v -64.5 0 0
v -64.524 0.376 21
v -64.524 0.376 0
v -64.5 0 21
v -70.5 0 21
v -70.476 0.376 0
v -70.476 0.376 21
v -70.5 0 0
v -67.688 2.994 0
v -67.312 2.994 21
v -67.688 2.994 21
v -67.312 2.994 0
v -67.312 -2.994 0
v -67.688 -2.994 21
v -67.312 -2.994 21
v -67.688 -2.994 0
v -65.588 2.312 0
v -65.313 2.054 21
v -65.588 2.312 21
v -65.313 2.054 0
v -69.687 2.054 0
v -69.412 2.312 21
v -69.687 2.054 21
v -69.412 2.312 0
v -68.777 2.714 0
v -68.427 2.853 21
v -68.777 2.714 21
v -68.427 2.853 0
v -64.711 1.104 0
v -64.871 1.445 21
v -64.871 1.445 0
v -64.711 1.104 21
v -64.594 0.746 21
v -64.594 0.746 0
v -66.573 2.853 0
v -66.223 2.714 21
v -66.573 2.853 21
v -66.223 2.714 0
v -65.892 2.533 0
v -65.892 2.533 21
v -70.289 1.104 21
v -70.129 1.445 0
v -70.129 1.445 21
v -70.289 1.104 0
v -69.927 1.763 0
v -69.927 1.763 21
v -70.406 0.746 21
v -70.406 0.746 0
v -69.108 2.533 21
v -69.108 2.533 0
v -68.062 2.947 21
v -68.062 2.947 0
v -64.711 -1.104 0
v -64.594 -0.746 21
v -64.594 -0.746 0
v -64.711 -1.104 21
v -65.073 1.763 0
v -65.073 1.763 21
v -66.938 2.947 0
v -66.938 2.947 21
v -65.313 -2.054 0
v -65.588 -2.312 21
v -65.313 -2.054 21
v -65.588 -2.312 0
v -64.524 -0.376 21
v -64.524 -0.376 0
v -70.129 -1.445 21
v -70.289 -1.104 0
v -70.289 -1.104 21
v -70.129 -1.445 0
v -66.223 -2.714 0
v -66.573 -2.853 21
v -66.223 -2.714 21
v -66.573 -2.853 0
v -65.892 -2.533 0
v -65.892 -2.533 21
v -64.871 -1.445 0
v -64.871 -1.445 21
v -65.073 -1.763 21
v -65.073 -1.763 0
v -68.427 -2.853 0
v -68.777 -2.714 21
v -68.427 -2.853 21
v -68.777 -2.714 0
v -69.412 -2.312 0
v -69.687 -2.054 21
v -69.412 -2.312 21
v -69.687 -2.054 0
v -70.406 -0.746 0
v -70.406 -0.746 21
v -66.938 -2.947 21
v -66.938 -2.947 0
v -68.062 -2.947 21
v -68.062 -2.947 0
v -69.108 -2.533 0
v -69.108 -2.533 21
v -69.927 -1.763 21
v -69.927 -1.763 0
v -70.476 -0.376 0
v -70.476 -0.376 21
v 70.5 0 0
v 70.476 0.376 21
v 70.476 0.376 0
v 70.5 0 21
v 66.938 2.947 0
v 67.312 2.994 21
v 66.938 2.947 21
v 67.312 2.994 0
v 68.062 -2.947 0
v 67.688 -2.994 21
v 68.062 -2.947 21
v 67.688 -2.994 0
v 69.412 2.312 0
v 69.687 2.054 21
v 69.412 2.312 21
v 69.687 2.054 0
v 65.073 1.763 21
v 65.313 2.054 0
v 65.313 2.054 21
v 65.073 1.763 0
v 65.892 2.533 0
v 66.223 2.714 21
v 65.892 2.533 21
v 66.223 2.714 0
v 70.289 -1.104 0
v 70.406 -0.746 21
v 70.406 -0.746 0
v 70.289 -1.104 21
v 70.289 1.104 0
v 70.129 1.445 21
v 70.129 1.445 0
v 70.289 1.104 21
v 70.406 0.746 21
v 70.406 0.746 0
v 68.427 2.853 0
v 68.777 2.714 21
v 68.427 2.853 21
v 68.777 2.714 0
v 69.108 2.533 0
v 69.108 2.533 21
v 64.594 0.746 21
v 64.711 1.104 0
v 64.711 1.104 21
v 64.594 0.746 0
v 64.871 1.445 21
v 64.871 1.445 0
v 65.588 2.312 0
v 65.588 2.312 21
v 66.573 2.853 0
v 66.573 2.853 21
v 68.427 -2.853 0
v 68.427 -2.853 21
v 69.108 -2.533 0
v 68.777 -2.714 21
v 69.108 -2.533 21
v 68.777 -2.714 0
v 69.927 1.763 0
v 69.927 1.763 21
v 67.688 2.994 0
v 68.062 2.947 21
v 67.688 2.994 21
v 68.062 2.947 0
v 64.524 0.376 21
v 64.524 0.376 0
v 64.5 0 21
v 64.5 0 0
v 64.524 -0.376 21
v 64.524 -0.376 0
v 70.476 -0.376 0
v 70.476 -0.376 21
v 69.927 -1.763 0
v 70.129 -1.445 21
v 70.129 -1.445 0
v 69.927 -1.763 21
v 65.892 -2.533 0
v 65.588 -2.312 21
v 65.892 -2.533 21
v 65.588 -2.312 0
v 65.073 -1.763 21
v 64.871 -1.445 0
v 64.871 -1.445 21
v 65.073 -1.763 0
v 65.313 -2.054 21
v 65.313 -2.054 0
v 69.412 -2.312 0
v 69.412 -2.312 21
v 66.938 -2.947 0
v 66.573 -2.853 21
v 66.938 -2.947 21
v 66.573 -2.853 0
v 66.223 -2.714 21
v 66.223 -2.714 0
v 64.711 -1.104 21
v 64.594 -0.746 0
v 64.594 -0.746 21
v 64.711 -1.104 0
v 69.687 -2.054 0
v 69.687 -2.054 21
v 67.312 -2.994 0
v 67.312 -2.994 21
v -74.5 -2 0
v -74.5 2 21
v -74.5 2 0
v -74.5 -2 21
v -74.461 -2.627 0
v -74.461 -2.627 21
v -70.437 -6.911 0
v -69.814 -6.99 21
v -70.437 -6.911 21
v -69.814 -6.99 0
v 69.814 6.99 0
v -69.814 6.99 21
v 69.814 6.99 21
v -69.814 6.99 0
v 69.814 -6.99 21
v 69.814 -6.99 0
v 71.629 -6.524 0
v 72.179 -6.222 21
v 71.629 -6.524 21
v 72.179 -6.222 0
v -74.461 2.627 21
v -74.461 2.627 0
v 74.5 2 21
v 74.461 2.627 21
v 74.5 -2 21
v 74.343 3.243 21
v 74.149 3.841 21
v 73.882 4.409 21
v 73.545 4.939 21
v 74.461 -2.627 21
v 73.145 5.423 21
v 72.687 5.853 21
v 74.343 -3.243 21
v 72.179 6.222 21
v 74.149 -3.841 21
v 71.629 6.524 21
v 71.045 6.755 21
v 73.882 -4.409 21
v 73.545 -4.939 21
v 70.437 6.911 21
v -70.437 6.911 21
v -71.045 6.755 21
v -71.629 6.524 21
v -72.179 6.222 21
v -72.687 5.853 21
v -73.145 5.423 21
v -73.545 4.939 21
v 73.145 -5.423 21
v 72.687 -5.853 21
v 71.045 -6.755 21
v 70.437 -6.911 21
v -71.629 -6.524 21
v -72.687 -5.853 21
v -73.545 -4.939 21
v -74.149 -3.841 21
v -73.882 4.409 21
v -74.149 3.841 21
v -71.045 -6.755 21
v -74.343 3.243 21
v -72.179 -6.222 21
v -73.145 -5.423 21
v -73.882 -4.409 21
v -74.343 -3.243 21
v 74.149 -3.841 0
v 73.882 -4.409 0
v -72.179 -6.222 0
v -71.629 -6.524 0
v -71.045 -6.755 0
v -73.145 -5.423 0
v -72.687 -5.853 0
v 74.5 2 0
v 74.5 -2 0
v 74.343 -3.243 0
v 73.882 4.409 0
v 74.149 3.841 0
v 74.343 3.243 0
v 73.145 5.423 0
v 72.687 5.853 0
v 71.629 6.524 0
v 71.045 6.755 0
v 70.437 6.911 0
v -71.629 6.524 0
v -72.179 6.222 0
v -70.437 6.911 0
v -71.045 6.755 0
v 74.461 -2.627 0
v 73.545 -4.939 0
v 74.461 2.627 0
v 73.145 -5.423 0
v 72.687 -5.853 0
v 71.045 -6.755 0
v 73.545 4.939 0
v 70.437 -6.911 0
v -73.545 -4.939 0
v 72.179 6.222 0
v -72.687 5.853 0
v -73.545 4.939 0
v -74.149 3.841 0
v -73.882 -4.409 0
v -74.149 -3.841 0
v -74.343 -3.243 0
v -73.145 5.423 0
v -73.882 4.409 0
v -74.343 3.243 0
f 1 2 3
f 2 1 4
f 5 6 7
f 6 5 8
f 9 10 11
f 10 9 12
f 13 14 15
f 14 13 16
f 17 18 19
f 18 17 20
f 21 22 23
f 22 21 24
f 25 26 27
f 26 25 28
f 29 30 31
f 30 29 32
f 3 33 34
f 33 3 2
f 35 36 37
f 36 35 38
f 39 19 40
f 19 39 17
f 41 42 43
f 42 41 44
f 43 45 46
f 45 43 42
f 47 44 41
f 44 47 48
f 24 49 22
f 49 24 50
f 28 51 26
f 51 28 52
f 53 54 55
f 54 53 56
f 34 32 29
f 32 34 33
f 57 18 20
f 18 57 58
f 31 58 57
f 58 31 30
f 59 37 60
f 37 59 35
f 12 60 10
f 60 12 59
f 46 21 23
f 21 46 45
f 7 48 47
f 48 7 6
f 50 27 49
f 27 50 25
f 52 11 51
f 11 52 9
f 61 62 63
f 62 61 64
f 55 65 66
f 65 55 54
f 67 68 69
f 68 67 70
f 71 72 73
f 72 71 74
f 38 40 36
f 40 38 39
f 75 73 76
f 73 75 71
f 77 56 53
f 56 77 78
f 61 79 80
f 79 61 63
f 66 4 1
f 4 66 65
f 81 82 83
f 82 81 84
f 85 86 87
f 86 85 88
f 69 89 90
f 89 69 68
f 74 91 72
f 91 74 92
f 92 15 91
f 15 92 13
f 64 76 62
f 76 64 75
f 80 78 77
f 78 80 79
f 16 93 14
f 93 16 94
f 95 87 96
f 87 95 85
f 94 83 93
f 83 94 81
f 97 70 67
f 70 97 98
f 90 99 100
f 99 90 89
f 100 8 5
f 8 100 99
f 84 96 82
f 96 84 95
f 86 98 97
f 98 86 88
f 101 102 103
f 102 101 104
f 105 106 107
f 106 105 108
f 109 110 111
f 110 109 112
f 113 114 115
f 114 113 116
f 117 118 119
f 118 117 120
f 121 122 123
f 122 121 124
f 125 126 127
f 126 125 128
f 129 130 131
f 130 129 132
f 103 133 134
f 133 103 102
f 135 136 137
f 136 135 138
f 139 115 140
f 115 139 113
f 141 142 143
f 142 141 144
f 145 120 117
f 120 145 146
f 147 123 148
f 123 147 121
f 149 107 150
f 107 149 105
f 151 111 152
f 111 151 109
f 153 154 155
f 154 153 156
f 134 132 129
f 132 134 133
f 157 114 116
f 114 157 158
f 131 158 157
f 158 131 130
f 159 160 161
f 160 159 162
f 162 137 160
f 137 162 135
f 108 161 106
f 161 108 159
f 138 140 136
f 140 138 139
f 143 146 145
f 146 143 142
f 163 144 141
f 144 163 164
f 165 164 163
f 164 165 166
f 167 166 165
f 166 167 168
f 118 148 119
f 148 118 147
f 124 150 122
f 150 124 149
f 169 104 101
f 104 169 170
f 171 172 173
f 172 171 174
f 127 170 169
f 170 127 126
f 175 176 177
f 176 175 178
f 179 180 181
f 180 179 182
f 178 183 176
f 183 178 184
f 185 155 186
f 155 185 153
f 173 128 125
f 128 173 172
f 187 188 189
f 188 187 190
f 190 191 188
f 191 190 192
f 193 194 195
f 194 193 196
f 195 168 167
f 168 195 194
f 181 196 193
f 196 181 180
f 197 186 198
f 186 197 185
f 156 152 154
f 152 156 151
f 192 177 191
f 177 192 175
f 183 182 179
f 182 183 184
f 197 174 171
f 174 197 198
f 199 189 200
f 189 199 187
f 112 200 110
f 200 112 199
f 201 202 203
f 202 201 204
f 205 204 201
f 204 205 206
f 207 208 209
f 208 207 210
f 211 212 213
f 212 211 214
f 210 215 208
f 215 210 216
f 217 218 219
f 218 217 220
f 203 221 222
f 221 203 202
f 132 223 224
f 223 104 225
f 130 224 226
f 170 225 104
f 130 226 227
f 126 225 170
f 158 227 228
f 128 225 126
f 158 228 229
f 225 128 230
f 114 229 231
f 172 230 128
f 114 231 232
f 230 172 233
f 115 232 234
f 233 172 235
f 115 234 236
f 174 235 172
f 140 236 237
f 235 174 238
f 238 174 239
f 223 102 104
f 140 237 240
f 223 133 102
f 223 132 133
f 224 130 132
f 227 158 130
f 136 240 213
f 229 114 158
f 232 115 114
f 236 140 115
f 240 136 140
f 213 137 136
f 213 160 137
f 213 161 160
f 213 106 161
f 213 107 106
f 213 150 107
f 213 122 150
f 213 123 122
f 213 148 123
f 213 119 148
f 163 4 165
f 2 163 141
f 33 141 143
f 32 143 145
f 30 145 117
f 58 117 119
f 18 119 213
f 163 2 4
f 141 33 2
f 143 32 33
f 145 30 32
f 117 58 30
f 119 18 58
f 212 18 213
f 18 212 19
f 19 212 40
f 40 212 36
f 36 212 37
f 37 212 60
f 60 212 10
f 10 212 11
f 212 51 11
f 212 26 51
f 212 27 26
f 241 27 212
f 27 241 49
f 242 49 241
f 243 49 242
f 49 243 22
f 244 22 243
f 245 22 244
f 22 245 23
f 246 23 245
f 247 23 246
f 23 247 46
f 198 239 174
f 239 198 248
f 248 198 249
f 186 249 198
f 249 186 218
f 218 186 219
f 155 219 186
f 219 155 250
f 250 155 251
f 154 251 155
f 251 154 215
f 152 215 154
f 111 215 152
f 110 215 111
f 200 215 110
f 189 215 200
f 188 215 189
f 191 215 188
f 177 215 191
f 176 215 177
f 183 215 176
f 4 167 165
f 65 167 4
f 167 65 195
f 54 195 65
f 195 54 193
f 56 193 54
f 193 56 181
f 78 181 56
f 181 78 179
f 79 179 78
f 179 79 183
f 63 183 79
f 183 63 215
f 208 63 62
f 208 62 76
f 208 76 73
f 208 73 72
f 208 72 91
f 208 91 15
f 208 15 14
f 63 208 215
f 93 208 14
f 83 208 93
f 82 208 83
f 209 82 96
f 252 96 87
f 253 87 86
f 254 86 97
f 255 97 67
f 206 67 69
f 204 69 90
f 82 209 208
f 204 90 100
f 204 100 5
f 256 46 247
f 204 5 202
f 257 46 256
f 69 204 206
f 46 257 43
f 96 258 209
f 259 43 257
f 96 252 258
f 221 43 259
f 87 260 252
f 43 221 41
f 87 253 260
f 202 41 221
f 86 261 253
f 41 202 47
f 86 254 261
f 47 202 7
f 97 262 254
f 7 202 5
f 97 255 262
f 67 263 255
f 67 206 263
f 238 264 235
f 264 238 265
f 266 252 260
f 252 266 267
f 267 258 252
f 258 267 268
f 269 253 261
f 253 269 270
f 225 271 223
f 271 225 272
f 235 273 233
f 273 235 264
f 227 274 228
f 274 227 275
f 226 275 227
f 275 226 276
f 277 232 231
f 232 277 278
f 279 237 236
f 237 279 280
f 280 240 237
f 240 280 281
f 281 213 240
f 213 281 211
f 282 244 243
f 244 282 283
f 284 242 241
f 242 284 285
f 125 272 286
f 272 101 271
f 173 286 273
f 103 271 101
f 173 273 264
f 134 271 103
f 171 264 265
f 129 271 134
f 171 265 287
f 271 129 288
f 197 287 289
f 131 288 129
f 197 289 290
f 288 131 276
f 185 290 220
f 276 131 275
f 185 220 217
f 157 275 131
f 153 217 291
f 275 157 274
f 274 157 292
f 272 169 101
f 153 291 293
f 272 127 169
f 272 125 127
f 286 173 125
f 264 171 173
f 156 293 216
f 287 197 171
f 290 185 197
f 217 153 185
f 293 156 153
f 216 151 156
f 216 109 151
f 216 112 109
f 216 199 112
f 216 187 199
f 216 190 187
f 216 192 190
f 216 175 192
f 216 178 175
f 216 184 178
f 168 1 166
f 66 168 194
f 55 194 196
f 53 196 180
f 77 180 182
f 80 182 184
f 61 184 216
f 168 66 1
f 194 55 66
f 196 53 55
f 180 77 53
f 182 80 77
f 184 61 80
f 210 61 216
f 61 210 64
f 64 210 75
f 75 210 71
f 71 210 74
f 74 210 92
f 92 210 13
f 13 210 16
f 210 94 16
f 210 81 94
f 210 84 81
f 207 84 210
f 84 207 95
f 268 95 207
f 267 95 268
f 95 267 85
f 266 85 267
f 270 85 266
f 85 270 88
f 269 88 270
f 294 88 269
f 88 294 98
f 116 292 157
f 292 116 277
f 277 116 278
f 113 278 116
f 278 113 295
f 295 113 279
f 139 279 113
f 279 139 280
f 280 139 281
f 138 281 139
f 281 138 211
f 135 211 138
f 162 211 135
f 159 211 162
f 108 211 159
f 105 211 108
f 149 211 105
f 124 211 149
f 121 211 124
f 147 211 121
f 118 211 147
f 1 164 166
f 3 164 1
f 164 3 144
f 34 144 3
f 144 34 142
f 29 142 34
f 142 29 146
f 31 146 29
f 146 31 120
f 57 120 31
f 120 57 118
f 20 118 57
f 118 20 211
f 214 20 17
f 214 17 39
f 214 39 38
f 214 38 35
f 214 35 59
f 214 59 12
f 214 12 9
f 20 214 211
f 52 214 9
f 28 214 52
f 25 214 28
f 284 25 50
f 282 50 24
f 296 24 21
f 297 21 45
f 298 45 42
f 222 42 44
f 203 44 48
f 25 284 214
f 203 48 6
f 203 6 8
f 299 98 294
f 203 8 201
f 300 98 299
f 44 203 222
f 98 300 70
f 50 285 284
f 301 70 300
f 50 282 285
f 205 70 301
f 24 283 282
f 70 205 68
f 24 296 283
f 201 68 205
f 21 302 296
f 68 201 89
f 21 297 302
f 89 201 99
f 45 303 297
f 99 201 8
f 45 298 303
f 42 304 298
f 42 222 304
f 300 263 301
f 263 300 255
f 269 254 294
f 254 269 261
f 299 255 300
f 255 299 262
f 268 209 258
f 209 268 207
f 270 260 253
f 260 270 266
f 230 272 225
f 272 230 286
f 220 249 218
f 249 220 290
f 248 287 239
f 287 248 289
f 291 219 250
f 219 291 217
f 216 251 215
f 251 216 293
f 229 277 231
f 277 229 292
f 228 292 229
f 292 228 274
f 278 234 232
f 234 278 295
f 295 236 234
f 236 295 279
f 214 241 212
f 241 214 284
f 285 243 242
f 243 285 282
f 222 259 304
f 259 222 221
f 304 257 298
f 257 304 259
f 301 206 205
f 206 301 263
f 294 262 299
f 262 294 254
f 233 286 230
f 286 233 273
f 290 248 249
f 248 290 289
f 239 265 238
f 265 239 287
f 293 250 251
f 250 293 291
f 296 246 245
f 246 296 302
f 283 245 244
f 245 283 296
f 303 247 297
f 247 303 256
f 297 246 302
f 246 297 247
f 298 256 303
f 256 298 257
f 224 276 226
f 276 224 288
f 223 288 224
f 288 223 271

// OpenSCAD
$fn = 50;


difference() {
	union() {
		hull() {
			translate(v = [-69.5000000000, 2.0000000000, 0]) {
				cylinder(h = 21, r = 5);
			}
			translate(v = [69.5000000000, 2.0000000000, 0]) {
				cylinder(h = 21, r = 5);
			}
			translate(v = [-69.5000000000, -2.0000000000, 0]) {
				cylinder(h = 21, r = 5);
			}
			translate(v = [69.5000000000, -2.0000000000, 0]) {
				cylinder(h = 21, r = 5);
			}
		}
	}
	union() {
		translate(v = [-67.5000000000, 0.0000000000, -100.0000000000]) {
			cylinder(h = 200, r = 3.0000000000);
		}
		translate(v = [-67.5000000000, 0.0000000000, -100.0000000000]) {
			cylinder(h = 200, r = 3.0000000000);
		}
		translate(v = [67.5000000000, 0.0000000000, -100.0000000000]) {
			cylinder(h = 200, r = 3.0000000000);
		}
		translate(v = [67.5000000000, 0.0000000000, -100.0000000000]) {
			cylinder(h = 200, r = 3.0000000000);
		}
	}
}
